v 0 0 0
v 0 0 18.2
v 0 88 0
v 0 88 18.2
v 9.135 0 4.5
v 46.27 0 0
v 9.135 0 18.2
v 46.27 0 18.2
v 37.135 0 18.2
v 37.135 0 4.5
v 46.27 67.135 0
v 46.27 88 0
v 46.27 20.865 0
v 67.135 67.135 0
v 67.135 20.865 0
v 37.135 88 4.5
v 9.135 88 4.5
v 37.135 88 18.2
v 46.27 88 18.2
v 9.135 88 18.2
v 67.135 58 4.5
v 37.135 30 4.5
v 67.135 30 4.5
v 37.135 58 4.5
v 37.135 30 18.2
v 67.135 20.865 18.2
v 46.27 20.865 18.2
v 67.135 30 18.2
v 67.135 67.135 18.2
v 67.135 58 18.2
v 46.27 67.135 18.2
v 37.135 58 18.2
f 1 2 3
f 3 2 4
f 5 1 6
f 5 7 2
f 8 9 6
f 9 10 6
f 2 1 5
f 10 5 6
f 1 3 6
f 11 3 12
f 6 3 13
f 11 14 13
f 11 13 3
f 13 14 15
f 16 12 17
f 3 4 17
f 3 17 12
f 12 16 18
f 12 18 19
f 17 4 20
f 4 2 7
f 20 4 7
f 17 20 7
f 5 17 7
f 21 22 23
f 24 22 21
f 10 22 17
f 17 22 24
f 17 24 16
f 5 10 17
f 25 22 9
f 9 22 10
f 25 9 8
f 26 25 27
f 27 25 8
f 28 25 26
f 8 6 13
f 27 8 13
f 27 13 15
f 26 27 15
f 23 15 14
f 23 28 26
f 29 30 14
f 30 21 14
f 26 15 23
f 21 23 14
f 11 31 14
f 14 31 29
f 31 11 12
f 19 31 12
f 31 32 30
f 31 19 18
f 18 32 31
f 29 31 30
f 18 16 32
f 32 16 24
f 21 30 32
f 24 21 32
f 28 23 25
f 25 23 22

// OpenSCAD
// Clipped across two dividers (think cubicle partitions) to hold their tops at
// a right angle.

slotWidth = 28;
slotDepth = 13.7;
wallThickness = 9.5 - .73/2;
floorThickness = 4.5;
armLength = 44;

overcut = 1;

difference() {
	union() {
		cube([2*wallThickness + slotWidth, 2*armLength, slotDepth + floorThickness]);
		translate([wallThickness + slotWidth/2, armLength - slotWidth/2 - wallThickness, 0]) 
		cube([armLength, 2*wallThickness + slotWidth, slotDepth + floorThickness]);
	}
	translate([wallThickness, -overcut, floorThickness])
	cube([slotWidth, 2*armLength + 2*overcut, slotDepth + overcut]);
		translate([wallThickness + slotWidth/2, armLength - slotWidth/2, floorThickness]) 
	cube([armLength + overcut, slotWidth, slotDepth + overcut]);
}
